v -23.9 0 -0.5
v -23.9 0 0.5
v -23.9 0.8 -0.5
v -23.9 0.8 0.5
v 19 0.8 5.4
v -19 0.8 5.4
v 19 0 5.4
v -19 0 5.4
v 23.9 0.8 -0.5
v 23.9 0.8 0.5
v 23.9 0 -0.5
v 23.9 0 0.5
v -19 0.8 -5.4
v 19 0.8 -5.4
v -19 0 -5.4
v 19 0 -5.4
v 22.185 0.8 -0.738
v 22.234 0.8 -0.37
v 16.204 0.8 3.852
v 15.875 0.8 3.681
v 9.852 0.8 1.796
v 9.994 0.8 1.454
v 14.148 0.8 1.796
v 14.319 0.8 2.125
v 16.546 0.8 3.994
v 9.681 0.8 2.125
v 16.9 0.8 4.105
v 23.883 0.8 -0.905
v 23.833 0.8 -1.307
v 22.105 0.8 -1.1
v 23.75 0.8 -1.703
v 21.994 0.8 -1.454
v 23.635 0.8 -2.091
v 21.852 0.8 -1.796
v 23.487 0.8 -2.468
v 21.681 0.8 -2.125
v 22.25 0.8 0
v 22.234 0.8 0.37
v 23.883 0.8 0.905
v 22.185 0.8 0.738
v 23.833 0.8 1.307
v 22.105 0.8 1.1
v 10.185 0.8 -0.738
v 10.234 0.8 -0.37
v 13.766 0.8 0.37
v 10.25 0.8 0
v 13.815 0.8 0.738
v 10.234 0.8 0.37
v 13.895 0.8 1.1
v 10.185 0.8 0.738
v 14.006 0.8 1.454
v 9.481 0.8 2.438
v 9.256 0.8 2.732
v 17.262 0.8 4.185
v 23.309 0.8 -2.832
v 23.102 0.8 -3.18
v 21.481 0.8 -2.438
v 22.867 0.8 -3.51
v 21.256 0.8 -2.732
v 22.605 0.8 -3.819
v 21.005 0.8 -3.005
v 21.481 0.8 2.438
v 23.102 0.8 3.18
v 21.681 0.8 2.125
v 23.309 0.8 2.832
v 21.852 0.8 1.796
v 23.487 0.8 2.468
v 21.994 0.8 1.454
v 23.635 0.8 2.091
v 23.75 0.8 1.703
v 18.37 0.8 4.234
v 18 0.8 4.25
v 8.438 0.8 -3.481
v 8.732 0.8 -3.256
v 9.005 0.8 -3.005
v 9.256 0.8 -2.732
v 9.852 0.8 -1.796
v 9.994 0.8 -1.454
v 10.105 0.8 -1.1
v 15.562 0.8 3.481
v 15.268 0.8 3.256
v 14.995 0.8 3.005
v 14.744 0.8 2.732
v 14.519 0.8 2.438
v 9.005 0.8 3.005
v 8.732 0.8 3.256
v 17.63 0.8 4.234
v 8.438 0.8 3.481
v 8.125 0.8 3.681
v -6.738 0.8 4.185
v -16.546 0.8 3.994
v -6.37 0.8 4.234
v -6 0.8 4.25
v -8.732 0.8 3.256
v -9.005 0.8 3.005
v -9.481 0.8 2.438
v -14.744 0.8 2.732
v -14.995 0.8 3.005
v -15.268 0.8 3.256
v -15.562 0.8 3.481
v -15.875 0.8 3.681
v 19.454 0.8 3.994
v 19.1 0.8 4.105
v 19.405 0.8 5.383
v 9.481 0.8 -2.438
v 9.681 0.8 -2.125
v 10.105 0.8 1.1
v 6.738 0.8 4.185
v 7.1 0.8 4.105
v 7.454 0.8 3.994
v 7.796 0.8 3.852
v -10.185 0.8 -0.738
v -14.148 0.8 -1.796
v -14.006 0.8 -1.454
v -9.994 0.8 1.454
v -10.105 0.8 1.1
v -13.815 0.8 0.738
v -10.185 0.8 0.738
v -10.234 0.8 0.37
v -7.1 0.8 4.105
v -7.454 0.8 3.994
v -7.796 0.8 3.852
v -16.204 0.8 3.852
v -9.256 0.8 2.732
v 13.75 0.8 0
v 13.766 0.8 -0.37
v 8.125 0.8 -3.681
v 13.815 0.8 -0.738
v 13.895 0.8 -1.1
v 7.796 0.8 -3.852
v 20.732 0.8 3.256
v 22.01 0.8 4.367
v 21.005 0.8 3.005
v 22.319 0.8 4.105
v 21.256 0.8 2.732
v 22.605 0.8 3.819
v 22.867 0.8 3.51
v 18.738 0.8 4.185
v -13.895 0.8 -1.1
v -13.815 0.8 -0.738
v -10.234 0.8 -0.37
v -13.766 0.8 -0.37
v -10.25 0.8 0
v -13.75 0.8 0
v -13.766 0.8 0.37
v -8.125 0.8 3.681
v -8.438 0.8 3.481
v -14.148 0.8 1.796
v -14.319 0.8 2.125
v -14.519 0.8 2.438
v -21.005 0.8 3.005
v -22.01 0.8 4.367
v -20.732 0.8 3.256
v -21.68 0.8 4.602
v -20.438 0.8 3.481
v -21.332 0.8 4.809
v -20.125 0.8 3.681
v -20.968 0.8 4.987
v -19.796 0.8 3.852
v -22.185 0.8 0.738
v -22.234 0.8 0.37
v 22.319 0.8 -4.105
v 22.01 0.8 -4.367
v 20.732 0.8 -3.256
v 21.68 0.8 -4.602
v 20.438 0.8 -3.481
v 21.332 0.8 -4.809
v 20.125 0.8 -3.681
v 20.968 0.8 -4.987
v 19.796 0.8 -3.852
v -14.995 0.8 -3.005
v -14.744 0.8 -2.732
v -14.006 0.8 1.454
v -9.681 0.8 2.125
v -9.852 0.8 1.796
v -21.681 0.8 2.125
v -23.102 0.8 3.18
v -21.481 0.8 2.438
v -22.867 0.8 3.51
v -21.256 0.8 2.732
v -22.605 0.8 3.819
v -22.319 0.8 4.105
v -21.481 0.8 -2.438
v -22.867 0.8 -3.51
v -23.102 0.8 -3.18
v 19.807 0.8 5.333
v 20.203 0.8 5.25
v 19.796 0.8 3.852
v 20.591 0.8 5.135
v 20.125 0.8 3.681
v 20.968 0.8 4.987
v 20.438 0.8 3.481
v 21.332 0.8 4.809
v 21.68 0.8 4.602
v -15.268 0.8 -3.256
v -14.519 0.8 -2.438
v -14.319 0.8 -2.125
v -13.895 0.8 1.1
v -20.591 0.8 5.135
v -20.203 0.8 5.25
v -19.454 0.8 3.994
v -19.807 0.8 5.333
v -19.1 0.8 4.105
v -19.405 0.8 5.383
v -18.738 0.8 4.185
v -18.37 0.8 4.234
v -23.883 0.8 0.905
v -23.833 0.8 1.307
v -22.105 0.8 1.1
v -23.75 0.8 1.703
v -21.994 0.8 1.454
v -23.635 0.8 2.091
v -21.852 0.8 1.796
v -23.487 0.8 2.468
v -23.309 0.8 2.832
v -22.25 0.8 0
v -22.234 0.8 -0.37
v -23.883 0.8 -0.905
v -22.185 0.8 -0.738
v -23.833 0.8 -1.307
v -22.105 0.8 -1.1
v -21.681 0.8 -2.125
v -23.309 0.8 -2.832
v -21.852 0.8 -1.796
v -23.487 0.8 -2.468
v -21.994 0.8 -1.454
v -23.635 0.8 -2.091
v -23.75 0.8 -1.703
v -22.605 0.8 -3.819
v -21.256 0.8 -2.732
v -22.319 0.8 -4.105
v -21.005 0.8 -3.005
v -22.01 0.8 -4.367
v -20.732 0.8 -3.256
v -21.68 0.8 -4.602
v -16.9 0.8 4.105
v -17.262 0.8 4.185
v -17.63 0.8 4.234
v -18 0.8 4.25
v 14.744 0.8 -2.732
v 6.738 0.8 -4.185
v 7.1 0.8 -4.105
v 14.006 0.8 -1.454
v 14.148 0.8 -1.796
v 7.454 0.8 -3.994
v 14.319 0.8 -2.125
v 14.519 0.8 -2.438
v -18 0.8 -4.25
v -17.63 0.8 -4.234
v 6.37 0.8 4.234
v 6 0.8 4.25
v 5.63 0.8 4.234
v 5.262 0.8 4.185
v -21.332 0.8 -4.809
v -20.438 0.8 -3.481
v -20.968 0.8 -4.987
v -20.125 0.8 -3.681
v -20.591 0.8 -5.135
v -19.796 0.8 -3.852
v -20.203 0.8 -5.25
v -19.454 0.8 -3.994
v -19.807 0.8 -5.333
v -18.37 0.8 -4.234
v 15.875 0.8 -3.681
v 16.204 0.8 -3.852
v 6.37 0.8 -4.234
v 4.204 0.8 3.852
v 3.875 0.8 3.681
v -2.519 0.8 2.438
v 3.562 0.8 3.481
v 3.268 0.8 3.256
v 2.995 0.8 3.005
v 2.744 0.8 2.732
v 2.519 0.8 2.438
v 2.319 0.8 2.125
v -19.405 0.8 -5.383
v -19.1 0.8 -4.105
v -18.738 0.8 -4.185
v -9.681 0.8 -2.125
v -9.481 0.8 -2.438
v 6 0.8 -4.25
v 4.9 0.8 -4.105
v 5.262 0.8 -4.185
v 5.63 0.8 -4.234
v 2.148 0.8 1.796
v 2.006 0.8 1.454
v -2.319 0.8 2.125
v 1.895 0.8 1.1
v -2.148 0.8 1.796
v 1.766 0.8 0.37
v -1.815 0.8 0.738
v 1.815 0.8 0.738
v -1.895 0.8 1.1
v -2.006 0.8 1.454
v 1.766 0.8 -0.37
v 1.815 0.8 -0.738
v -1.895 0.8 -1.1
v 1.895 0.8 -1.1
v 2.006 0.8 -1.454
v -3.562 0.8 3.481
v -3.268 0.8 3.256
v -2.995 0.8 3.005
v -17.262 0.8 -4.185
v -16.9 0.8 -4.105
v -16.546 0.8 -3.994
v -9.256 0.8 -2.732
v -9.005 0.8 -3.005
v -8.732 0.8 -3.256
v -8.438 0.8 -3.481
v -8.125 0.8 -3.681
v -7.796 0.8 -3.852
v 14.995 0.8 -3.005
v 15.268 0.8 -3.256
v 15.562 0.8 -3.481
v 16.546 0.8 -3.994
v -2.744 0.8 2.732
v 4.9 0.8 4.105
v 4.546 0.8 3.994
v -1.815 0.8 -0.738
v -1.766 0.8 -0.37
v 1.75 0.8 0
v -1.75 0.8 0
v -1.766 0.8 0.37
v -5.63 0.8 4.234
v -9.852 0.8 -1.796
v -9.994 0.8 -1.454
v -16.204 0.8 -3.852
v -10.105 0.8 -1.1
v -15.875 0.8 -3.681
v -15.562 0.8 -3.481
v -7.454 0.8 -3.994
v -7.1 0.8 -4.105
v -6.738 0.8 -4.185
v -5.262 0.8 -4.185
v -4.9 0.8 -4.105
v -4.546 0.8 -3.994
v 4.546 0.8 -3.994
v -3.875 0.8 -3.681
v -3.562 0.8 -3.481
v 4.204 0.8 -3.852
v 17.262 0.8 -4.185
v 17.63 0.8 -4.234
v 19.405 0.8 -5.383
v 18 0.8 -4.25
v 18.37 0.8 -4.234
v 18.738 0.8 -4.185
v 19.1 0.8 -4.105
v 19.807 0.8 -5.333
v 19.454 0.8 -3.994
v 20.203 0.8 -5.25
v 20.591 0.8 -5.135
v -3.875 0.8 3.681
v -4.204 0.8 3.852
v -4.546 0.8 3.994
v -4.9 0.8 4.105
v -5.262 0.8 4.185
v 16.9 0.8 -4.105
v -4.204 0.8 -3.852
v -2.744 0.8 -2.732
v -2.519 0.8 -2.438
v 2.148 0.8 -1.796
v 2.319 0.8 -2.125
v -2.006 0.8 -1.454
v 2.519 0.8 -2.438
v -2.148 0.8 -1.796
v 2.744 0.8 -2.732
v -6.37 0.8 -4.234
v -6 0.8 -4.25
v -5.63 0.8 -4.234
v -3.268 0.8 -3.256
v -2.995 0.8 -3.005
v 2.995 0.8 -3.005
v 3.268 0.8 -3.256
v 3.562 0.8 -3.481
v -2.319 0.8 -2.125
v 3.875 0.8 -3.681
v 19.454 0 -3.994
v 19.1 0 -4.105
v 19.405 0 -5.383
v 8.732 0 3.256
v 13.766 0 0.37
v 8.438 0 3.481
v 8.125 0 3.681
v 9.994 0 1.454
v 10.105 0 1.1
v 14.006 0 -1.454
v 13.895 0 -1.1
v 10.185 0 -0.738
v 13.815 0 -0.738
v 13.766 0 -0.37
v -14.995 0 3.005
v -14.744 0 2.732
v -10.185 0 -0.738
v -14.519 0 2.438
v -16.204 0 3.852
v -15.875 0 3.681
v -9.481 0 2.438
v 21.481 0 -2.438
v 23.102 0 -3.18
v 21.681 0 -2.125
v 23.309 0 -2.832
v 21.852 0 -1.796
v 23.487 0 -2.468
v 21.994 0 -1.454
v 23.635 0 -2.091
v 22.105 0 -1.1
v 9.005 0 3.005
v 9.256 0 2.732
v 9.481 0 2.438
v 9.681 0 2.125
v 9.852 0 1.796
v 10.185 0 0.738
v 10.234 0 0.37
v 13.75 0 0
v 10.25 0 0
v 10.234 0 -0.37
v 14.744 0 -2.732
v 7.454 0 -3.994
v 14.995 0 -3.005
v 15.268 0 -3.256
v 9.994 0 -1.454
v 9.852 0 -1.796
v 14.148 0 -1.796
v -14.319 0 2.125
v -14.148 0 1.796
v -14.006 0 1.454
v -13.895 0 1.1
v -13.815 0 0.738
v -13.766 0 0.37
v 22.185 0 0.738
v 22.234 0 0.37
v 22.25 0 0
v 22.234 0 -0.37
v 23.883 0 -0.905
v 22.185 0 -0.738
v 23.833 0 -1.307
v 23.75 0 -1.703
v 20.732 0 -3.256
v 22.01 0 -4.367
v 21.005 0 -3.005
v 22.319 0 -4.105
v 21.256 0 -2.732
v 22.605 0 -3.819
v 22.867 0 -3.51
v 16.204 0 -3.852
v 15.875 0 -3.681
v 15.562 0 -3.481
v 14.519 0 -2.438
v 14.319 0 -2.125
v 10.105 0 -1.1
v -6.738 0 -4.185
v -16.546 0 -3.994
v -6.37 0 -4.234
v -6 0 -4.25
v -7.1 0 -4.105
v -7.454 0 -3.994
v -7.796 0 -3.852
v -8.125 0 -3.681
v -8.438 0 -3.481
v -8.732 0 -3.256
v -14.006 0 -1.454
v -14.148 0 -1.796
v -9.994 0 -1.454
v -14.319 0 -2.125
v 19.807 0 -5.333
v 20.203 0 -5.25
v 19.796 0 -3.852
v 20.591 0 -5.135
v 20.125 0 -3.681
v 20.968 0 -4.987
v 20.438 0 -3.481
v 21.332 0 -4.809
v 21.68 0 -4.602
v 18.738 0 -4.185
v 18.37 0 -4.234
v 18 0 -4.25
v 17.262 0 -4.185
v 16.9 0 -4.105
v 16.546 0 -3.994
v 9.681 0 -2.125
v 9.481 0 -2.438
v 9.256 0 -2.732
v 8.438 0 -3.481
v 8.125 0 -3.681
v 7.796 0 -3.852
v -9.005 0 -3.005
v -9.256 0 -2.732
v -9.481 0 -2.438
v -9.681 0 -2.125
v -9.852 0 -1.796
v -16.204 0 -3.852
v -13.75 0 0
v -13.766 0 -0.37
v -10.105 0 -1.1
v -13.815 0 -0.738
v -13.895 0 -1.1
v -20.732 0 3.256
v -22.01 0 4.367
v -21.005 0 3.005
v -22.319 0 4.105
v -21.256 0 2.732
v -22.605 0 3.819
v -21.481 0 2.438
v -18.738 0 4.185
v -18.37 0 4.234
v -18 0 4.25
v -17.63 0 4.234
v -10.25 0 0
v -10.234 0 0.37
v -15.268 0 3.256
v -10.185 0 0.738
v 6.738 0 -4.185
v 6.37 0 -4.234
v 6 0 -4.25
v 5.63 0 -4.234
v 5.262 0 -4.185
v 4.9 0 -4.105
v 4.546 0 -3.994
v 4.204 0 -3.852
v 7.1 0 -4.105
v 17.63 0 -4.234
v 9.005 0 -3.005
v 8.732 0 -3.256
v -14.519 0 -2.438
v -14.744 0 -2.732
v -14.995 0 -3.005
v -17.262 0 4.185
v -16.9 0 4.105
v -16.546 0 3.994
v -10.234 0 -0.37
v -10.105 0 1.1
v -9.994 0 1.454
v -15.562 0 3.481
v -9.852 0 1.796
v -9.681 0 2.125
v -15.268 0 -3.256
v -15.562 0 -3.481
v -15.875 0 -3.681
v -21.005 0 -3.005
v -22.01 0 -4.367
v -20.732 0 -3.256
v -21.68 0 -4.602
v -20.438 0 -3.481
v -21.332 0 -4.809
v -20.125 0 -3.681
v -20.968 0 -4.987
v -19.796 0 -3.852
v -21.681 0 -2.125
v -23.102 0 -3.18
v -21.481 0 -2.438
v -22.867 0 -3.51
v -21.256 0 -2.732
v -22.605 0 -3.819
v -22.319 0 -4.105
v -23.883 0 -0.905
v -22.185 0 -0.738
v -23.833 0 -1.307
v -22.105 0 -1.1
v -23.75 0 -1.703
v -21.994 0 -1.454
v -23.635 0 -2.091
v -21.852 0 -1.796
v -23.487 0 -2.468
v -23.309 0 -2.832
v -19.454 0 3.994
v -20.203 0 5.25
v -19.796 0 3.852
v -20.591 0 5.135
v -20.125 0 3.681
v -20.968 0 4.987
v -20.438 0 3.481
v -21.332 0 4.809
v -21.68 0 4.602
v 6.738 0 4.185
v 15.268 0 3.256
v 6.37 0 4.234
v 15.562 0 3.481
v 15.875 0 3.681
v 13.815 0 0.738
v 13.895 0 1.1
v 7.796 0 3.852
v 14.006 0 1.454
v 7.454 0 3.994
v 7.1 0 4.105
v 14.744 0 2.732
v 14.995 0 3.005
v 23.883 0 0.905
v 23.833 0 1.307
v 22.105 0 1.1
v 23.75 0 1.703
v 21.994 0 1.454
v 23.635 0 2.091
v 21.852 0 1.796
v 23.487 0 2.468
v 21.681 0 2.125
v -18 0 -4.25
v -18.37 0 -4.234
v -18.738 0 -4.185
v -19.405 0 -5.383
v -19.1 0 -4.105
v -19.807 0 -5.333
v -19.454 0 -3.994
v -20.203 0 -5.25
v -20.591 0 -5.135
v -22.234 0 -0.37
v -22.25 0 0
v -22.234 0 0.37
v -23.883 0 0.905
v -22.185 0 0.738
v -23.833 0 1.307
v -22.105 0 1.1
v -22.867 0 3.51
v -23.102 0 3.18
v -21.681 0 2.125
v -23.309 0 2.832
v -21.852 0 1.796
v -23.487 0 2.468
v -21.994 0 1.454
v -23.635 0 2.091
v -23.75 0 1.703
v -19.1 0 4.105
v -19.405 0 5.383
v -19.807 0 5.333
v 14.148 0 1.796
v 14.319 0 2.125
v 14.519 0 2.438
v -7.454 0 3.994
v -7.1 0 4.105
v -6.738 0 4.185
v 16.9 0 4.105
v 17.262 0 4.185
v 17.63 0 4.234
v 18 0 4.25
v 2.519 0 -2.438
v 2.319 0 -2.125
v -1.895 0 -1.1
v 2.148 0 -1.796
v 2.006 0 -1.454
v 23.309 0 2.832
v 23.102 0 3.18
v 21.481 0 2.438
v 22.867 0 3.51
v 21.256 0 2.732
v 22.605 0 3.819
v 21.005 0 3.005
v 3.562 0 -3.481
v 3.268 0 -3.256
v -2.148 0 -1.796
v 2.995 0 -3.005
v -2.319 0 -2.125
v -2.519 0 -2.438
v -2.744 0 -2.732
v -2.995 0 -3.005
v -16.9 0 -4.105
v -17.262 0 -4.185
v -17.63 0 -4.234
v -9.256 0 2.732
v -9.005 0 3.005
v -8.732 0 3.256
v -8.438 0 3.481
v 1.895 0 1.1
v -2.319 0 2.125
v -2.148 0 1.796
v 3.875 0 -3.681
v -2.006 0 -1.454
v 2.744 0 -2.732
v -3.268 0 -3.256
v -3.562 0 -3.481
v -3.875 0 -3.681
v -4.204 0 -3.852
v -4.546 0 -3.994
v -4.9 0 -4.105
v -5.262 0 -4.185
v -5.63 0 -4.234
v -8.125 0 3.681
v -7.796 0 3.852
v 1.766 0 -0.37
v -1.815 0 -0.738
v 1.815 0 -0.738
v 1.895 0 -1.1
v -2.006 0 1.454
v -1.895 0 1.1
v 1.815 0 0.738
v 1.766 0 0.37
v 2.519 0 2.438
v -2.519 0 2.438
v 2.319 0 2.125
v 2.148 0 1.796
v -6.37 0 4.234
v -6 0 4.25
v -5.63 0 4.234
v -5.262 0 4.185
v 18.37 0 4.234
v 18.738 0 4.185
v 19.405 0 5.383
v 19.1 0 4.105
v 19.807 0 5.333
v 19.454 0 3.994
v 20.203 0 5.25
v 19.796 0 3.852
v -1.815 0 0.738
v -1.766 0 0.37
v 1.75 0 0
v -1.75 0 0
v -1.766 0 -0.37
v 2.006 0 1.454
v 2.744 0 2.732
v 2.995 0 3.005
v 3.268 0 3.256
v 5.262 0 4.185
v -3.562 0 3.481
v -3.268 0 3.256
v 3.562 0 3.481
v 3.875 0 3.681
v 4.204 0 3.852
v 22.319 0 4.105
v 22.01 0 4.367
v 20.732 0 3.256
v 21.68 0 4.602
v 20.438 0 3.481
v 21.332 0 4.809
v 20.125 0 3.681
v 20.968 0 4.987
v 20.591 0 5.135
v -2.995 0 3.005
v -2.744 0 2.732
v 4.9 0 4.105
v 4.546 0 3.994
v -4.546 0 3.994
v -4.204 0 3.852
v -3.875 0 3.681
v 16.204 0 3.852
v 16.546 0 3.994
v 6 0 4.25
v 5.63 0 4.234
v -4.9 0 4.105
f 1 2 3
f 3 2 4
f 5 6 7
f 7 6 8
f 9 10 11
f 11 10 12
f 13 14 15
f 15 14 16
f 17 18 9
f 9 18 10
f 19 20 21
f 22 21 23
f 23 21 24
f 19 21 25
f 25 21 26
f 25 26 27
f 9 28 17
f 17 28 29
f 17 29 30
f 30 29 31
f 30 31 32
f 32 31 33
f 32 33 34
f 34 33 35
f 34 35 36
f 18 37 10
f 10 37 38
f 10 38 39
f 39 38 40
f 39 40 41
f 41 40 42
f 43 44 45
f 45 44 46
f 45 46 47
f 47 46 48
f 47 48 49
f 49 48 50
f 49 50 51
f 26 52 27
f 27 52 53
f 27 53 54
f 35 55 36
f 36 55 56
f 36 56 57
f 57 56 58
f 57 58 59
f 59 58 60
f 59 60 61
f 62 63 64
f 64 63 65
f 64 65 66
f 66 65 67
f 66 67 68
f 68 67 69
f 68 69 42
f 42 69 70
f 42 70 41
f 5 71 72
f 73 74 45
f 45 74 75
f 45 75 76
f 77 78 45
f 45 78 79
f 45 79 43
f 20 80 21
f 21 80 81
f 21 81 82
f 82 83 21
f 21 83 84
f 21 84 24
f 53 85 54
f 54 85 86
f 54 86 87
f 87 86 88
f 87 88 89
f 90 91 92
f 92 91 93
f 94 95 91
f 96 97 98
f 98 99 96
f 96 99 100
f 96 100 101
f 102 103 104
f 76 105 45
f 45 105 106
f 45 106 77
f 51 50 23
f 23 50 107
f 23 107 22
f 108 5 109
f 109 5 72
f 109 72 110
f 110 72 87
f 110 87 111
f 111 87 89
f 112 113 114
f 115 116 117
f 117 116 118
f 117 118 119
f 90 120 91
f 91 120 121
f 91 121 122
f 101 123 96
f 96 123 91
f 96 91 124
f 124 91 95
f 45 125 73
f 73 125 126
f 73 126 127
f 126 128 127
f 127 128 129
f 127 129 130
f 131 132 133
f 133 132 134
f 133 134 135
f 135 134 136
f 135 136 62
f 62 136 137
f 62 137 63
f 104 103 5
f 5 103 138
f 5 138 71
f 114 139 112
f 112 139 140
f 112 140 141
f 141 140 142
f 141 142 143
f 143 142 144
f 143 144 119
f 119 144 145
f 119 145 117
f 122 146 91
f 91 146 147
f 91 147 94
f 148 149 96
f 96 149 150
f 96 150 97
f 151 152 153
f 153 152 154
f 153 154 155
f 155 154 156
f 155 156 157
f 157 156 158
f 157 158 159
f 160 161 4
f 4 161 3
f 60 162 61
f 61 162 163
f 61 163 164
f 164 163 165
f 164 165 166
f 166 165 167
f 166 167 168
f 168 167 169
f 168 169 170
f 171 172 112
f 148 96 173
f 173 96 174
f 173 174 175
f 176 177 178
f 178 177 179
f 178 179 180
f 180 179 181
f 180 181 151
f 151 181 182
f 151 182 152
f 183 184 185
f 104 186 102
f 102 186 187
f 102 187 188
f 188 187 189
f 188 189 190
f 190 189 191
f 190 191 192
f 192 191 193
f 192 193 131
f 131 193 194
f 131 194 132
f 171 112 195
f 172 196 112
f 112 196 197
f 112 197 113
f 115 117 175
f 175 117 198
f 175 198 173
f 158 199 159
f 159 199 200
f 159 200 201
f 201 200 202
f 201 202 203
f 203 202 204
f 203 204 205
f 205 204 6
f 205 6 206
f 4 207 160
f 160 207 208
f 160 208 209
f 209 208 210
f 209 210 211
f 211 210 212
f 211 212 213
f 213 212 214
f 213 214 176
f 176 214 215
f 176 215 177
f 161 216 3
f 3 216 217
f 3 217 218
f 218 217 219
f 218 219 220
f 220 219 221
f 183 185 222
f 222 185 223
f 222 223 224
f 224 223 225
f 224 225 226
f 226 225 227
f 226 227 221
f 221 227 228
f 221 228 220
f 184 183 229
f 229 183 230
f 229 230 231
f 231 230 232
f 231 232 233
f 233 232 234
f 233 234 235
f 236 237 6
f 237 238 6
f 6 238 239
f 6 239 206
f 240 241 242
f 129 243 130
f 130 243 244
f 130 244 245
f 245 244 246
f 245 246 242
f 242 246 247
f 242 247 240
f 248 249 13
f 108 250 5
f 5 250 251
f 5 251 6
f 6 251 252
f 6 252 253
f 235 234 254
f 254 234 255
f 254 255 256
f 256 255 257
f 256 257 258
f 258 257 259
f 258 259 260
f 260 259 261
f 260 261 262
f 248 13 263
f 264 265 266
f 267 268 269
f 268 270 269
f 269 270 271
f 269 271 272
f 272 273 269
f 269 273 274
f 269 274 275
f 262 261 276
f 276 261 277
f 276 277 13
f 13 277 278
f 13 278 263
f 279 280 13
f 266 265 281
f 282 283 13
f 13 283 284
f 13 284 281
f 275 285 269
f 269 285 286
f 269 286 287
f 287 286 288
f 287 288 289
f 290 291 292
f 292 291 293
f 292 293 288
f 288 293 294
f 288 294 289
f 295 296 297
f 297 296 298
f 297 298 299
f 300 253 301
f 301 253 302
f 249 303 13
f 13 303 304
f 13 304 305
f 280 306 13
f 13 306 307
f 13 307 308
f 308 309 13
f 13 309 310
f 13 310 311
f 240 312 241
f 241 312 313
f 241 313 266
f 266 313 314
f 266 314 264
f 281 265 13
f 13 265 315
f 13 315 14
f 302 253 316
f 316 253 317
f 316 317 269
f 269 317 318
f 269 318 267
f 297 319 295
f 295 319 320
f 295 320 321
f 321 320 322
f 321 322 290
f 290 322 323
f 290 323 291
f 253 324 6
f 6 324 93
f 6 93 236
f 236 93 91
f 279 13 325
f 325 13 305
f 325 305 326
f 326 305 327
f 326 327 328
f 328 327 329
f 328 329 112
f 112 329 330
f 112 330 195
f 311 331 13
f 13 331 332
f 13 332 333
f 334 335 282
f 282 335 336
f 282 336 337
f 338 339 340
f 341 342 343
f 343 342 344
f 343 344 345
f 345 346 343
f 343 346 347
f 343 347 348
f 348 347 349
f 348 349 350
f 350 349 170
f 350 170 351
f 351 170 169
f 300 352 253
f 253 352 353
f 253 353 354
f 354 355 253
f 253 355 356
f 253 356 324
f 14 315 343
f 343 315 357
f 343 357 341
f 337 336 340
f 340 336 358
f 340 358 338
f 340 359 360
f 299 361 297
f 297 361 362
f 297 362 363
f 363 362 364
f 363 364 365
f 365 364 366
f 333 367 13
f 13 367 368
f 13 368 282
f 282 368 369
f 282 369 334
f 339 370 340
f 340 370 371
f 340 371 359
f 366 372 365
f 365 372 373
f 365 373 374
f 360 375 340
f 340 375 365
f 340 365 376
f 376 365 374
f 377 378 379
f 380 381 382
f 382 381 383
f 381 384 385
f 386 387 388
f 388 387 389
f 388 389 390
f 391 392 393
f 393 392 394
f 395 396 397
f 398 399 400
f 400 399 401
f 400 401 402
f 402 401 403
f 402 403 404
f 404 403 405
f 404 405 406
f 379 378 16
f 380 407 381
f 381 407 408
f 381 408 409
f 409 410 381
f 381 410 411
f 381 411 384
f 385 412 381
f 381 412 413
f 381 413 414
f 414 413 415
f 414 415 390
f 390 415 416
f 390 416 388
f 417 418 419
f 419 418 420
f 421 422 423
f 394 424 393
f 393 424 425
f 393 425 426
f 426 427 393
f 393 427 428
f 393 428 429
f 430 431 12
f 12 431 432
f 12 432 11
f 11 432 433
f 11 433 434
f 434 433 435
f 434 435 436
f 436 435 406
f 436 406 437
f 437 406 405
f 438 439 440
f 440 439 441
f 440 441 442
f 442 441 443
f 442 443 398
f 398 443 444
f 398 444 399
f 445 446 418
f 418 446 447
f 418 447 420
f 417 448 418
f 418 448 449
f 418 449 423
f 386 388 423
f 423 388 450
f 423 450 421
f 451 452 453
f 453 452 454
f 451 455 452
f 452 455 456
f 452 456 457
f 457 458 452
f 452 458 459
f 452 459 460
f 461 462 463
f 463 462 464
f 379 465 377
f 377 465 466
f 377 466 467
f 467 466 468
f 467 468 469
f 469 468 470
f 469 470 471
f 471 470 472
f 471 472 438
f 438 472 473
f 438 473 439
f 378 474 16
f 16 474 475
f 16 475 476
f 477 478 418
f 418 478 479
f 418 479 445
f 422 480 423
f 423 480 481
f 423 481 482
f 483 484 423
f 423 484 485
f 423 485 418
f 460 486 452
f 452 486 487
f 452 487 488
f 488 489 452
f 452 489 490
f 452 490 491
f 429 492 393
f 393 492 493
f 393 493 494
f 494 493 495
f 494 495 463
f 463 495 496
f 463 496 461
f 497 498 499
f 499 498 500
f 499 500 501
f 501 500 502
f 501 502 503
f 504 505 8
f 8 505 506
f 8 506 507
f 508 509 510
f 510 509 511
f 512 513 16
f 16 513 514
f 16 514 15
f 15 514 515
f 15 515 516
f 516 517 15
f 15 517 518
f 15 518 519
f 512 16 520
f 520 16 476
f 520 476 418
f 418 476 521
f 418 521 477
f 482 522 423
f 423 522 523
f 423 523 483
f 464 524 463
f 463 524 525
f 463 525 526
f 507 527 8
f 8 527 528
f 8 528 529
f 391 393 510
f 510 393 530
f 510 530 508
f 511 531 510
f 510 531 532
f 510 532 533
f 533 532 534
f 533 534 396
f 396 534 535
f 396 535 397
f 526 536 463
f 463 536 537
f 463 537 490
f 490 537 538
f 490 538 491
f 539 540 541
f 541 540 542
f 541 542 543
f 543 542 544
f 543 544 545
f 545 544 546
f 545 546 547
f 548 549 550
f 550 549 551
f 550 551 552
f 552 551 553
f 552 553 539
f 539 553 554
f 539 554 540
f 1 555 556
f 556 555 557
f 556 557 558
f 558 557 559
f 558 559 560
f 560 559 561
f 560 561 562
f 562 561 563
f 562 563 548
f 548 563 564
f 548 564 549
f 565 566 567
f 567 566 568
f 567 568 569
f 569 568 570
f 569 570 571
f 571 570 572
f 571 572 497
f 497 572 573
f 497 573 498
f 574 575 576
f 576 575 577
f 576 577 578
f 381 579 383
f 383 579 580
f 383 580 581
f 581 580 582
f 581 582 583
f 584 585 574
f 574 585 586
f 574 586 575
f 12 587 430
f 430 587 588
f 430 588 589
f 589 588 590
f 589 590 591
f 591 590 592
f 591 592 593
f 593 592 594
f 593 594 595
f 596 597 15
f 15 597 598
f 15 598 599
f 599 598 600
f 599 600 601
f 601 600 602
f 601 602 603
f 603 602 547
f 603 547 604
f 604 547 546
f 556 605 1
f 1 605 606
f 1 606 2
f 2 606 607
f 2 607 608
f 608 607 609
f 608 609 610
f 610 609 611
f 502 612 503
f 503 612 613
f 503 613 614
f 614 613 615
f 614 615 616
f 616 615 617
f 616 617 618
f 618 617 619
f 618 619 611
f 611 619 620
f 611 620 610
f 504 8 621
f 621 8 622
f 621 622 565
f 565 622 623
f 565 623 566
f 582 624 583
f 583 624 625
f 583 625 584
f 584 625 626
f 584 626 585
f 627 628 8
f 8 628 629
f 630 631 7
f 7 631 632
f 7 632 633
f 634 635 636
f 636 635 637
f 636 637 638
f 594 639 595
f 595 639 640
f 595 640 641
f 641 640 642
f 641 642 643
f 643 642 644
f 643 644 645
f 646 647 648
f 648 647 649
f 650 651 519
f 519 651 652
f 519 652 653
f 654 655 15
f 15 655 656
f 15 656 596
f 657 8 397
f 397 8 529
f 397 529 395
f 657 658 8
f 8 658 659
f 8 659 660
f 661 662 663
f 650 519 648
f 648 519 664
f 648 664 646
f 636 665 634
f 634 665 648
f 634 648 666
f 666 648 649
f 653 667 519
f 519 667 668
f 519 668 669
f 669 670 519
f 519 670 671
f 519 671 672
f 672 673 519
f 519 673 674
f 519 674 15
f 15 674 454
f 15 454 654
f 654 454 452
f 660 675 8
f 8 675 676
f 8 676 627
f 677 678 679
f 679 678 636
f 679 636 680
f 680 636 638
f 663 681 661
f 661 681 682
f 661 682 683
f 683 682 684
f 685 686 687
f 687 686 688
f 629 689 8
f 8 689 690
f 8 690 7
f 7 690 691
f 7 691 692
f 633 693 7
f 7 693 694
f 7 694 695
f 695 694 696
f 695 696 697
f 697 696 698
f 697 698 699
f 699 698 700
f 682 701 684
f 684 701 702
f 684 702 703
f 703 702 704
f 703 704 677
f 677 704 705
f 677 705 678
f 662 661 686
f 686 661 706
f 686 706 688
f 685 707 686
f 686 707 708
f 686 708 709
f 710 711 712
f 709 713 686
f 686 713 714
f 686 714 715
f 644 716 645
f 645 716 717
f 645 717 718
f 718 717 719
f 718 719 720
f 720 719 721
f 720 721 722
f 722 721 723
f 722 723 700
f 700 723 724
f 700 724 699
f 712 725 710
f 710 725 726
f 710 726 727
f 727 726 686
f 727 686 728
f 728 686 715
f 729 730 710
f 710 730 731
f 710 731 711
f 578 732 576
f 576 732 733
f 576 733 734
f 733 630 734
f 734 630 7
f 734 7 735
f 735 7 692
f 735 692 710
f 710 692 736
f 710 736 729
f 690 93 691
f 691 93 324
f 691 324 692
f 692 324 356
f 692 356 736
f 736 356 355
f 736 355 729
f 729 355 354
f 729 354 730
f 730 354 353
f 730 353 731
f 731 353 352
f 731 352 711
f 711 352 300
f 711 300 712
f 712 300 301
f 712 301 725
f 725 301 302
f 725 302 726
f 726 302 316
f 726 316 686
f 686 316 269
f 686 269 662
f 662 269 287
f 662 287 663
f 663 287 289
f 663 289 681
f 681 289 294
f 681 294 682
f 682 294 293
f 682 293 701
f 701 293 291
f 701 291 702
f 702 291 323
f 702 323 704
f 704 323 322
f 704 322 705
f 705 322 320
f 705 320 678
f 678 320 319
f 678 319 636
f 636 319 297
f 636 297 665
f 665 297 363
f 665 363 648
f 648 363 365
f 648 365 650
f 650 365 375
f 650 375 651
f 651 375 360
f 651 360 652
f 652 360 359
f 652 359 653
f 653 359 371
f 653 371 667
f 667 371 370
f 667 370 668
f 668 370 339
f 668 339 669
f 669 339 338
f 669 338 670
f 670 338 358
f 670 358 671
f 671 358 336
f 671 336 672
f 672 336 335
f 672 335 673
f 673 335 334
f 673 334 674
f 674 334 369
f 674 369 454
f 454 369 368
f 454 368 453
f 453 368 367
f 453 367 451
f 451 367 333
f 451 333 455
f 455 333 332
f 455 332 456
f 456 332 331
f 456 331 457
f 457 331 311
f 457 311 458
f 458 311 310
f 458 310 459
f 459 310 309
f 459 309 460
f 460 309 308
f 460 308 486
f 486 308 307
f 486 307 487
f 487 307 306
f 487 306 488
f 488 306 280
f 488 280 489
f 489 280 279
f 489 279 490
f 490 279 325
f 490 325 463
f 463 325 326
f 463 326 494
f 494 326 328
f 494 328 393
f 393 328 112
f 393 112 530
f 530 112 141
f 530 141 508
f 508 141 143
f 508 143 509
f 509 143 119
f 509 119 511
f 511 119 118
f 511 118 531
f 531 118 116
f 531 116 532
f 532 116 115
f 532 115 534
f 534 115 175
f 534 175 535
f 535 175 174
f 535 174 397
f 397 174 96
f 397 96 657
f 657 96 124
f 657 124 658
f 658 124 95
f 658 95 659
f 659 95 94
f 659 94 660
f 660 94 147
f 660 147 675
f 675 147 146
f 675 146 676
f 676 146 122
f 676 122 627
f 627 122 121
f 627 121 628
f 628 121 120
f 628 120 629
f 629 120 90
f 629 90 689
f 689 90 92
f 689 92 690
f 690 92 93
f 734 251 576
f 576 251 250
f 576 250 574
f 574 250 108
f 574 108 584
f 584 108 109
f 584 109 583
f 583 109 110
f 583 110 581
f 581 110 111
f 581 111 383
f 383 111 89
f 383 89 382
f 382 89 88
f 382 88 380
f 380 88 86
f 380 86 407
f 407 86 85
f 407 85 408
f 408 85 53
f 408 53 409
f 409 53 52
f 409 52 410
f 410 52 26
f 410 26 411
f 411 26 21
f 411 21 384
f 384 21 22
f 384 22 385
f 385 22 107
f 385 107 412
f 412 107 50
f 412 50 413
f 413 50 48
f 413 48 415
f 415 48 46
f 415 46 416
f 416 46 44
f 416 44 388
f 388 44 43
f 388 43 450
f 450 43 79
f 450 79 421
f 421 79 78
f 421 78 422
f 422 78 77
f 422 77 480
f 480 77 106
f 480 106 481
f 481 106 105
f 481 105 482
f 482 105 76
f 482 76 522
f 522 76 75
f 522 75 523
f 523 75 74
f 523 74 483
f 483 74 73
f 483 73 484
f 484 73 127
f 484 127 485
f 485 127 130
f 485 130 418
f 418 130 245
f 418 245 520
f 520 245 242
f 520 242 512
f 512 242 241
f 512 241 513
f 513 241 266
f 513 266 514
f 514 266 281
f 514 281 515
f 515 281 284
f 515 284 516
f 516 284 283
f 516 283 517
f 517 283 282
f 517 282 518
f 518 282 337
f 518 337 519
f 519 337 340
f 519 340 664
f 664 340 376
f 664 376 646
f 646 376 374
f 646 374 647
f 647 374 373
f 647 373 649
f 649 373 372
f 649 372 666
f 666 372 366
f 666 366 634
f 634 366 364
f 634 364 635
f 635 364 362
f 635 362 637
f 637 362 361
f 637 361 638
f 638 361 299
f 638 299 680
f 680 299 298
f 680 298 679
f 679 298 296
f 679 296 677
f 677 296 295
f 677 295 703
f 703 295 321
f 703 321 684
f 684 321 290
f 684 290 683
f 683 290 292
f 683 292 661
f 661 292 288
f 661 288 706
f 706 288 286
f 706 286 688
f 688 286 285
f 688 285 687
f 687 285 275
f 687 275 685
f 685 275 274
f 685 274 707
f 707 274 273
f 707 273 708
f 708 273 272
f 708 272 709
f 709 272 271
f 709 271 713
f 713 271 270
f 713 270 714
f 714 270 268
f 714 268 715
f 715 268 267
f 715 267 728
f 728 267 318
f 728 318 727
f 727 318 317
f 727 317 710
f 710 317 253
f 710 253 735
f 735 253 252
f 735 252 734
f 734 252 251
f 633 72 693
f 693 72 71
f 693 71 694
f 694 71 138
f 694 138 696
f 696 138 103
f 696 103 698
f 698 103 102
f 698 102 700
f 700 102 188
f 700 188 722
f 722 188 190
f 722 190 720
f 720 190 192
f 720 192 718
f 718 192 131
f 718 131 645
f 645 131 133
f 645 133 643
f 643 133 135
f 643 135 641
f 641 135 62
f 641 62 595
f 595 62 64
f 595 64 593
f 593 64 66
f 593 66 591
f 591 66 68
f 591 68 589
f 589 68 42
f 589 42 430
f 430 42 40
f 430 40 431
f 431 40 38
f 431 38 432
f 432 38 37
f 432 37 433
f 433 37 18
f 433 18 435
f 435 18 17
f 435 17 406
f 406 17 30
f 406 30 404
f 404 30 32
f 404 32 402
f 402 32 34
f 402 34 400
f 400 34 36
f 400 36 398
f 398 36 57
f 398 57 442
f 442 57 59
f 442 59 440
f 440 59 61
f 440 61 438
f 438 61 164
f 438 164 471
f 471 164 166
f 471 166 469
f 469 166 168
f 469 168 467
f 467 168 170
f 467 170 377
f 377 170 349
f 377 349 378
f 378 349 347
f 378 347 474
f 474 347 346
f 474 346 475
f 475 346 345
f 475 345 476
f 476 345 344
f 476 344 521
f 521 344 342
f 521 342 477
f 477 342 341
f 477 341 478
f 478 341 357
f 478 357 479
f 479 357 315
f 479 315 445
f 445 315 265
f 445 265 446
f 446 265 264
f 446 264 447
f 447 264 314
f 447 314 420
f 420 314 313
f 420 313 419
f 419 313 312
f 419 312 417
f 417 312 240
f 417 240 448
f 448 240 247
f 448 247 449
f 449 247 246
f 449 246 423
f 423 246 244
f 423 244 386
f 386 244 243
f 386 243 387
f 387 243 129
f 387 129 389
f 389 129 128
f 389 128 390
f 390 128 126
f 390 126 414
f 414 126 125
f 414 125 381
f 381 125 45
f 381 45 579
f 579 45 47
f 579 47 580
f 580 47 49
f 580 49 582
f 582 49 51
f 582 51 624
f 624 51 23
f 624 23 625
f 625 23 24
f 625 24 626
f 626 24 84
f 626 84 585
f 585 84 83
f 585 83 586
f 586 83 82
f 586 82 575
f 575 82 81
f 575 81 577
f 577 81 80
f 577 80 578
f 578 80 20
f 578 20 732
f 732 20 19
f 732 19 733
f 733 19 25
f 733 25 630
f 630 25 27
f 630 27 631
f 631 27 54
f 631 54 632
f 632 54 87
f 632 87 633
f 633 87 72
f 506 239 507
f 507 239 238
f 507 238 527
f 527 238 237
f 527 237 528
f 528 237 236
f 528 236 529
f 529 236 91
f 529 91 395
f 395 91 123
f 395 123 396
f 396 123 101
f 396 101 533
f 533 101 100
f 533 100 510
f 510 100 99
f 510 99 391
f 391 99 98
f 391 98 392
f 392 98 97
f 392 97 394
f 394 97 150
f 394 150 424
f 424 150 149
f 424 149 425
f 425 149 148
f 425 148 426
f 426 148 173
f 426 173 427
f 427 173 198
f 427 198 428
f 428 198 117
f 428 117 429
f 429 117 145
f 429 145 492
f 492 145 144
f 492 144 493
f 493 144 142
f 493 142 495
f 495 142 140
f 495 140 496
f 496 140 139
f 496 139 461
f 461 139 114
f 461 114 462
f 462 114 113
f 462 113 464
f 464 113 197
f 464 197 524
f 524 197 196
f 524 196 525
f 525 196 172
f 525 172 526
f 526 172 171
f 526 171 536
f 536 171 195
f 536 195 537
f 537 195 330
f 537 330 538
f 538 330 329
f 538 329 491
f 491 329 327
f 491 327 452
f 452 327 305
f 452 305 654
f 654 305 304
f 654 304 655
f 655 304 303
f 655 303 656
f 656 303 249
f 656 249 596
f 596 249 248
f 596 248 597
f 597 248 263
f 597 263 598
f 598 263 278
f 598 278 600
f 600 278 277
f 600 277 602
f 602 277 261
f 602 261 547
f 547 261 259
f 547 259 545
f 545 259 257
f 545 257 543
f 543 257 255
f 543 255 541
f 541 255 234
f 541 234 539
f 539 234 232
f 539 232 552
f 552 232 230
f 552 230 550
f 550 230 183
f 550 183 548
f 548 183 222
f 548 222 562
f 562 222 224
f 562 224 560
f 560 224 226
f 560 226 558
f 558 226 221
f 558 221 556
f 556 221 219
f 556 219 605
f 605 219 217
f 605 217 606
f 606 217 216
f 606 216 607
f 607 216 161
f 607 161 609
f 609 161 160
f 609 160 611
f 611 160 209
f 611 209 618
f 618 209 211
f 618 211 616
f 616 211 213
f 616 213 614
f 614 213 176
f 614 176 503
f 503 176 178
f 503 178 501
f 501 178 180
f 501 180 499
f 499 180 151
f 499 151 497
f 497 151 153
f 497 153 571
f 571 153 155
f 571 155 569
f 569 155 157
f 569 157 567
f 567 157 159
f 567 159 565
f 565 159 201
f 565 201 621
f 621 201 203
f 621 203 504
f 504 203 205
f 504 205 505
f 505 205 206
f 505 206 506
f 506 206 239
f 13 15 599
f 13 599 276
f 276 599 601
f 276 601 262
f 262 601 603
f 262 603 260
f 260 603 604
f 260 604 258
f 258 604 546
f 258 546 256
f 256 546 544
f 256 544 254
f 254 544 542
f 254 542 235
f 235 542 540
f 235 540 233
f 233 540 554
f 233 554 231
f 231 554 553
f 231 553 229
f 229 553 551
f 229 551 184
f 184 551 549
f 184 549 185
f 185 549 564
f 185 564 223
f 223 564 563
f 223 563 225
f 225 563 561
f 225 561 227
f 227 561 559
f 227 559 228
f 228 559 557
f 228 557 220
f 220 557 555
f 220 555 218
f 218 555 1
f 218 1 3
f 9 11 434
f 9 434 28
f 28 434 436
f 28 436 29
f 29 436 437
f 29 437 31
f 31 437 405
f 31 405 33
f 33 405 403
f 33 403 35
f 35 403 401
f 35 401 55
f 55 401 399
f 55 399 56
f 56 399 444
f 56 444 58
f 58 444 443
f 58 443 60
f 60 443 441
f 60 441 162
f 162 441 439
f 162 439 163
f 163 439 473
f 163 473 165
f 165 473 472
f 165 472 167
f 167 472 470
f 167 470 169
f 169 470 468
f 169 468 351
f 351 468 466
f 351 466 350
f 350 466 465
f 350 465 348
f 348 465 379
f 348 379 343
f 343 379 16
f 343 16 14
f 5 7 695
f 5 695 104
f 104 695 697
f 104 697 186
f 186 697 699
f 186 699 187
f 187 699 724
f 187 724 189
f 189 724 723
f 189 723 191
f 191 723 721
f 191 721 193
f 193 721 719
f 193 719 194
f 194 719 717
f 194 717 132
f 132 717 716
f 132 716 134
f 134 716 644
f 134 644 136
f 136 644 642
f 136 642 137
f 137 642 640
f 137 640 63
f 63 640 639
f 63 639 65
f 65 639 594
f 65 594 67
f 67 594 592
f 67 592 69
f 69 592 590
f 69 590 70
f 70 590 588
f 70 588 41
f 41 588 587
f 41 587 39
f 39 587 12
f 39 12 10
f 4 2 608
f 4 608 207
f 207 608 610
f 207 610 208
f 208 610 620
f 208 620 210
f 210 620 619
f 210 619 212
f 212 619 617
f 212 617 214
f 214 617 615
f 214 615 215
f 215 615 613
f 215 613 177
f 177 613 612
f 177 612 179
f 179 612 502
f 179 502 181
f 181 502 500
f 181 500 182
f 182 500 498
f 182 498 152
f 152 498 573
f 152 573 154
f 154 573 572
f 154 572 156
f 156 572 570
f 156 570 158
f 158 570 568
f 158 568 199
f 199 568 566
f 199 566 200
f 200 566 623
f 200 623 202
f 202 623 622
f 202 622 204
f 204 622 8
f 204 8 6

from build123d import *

# Parameters (mm, degrees)
SKETCH1_W           = 47.8
SKETCH1_H           = 10.8
BOSS_EXTRUDE1_DEPTH = 0.8
CUT_EXTRUDE1_REACH  = 26.516
SKETCH2_R           = 4.25
FILLET1_R           = 4.9


with BuildPart() as part:
    # Sketch1 → Boss-Extrude1 (new body)
    with BuildSketch(Plane(origin=(0, 0, 0), x_dir=(1, 0, 0), z_dir=(0, 1, 0))):
        Rectangle(SKETCH1_W, SKETCH1_H)
    extrude(amount=BOSS_EXTRUDE1_DEPTH)

    # Sketch2 → Cut-Extrude1 (cut, up to next)
    with BuildSketch(Plane(origin=(0, 0.8, 0), x_dir=(1, 0, 0), z_dir=(0, 1, 0)), mode=Mode.PRIVATE) as cut_extrude1_sk1:
        with Locations(Location((-18, 0, 0), (0, 0, 270))):
            Circle(SKETCH2_R)
    cut_extrude1_tool1 = extrude(cut_extrude1_sk1.sketch, amount=-CUT_EXTRUDE1_REACH, mode=Mode.PRIVATE) & part.part
    # Sketch2 → Cut-Extrude1 (cut, up to next)
    with BuildSketch(Plane(origin=(0, 0.8, 0), x_dir=(1, 0, 0), z_dir=(0, 1, 0)), mode=Mode.PRIVATE) as cut_extrude1_sk2:
        with Locations(Location((18, 0, 0), (0, 0, 270))):
            Circle(SKETCH2_R)
    cut_extrude1_tool2 = extrude(cut_extrude1_sk2.sketch, amount=-CUT_EXTRUDE1_REACH, mode=Mode.PRIVATE) & part.part
    # Sketch2 → Cut-Extrude1 (cut, up to next)
    with BuildSketch(Plane(origin=(0, 0.8, 0), x_dir=(1, 0, 0), z_dir=(0, 1, 0)), mode=Mode.PRIVATE) as cut_extrude1_sk3:
        with Locations(Location((-6, 0, 0), (0, 0, 270))):
            Circle(SKETCH2_R)
    cut_extrude1_tool3 = extrude(cut_extrude1_sk3.sketch, amount=-CUT_EXTRUDE1_REACH, mode=Mode.PRIVATE) & part.part
    # Sketch2 → Cut-Extrude1 (cut, up to next)
    with BuildSketch(Plane(origin=(0, 0.8, 0), x_dir=(1, 0, 0), z_dir=(0, 1, 0)), mode=Mode.PRIVATE) as cut_extrude1_sk4:
        with Locations(Location((6, 0, 0), (0, 0, 270))):
            Circle(SKETCH2_R)
    cut_extrude1_tool4 = extrude(cut_extrude1_sk4.sketch, amount=-CUT_EXTRUDE1_REACH, mode=Mode.PRIVATE) & part.part
    add(cut_extrude1_tool1.solids().sort_by_distance((-18, 0.8, 0))[0], mode=Mode.SUBTRACT)
    add(cut_extrude1_tool2.solids().sort_by_distance((18, 0.8, 0))[0], mode=Mode.SUBTRACT)
    add(cut_extrude1_tool3.solids().sort_by_distance((-6, 0.8, 0))[0], mode=Mode.SUBTRACT)
    add(cut_extrude1_tool4.solids().sort_by_distance((6, 0.8, 0))[0], mode=Mode.SUBTRACT)

    # Fillet1
    fillet1_edges = [part.edges().sort_by_distance(p)[0] for p in [
        (-23.9, 0.4, -5.4),
        (23.9, 0.4, -5.4),
        (23.9, 0.4, 5.4),
        (-23.9, 0.4, 5.4),
    ]]
    fillet(fillet1_edges, radius=FILLET1_R)


solid = part.part
